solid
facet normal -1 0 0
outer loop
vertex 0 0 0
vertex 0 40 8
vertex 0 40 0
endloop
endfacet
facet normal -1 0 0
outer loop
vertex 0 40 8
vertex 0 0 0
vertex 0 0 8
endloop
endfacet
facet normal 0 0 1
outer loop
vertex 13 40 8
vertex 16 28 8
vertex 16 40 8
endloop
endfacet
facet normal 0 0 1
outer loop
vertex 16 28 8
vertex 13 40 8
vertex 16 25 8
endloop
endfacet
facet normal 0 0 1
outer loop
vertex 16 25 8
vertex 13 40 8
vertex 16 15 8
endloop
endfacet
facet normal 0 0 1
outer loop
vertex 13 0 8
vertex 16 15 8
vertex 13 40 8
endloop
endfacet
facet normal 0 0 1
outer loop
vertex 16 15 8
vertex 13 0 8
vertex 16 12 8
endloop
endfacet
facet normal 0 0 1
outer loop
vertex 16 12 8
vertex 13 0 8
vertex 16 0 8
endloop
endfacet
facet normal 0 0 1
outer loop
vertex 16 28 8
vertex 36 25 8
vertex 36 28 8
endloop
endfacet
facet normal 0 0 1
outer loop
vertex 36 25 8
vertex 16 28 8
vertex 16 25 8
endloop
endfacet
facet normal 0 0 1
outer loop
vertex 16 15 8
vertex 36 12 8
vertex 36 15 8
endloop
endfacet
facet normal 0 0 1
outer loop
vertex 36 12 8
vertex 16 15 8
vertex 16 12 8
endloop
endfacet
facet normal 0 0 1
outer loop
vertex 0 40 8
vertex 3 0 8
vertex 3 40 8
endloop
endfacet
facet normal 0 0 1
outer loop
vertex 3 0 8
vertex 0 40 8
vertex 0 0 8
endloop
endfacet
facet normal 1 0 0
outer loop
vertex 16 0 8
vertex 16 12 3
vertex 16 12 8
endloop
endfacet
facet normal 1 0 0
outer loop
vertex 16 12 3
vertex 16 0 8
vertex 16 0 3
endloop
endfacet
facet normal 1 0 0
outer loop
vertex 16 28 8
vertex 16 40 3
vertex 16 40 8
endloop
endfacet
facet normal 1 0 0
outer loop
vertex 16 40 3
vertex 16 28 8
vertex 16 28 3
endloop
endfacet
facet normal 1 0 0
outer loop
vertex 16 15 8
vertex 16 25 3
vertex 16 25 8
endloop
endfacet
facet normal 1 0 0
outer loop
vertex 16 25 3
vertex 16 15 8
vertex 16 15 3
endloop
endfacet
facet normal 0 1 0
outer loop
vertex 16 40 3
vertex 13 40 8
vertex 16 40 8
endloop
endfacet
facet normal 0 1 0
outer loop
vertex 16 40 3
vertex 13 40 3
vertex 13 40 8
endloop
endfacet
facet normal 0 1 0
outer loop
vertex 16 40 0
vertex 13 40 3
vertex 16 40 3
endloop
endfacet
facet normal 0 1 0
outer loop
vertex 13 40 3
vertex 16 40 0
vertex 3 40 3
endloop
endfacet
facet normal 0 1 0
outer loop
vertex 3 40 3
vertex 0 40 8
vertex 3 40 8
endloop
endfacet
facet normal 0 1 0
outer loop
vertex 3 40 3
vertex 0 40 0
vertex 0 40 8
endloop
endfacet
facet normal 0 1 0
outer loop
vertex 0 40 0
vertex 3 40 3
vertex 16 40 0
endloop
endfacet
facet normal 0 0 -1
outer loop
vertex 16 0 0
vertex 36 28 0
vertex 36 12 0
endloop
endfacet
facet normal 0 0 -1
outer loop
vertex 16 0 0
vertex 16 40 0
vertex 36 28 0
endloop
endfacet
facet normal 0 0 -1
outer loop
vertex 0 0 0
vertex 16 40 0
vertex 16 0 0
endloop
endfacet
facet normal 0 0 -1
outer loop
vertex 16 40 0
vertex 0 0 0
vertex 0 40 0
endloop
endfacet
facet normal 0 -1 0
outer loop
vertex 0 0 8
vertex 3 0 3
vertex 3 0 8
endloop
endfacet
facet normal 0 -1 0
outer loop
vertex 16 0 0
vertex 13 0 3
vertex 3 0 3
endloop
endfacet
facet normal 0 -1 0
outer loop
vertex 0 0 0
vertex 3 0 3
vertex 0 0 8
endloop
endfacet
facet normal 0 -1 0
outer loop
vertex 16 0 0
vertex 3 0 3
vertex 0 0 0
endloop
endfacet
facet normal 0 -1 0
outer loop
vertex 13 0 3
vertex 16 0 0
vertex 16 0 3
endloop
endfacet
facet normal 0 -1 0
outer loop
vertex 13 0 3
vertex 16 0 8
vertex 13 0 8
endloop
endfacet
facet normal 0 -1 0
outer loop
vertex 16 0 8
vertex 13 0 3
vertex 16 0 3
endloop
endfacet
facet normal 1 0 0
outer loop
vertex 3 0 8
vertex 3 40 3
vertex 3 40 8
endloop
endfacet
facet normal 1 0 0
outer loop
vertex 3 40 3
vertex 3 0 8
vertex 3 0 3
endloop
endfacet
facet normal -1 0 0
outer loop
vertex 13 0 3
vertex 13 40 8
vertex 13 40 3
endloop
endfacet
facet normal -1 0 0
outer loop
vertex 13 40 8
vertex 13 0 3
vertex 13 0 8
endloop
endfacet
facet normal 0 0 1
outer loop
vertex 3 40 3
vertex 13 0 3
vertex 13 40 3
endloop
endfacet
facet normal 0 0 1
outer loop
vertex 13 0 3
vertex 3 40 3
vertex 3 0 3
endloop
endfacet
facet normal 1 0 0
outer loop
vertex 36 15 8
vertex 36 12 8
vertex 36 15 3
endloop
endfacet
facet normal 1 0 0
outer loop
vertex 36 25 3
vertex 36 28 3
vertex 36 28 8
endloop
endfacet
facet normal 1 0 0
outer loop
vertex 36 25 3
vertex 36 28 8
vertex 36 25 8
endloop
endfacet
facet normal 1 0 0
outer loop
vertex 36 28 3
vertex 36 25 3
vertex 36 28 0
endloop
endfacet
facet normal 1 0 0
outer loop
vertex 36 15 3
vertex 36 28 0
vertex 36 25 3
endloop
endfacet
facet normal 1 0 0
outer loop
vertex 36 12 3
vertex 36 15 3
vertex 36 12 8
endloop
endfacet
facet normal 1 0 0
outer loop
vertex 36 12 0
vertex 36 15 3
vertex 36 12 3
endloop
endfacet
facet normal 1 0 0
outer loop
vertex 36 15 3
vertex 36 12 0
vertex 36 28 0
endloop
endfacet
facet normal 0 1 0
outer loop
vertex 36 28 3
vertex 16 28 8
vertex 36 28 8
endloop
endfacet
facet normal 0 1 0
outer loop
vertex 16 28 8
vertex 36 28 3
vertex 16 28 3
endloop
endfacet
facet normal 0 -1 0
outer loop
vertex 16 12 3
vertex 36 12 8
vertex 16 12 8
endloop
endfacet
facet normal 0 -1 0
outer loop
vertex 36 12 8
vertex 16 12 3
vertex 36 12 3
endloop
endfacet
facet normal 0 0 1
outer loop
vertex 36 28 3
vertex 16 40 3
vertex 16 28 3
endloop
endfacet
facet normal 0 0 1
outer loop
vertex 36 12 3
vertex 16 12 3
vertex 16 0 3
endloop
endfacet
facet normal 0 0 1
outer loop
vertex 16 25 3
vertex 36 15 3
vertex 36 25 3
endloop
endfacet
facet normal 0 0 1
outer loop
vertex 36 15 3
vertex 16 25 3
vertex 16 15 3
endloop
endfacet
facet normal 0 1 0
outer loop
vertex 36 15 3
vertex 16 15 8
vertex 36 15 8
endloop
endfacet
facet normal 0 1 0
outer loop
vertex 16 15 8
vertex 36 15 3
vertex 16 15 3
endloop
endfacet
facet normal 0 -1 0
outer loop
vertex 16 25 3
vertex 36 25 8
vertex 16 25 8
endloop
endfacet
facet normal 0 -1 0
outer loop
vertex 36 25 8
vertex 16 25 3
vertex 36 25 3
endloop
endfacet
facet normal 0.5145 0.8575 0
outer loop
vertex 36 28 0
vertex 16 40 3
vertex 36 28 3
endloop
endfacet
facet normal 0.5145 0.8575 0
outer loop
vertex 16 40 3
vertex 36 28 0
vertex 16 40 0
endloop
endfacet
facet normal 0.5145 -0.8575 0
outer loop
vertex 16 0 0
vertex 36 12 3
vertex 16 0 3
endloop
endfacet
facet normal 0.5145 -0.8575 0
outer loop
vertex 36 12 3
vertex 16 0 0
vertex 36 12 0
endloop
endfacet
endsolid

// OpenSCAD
ml = 40;
thick = 3;
d = 10;

difference() {
    cube([d + 2 * thick, ml, d/2 + thick]);
    translate([thick, -1, thick]) cube([d, ml + 2, d/2 + 1]);
}
translate([d + 2 * thick, ml/2 - d/2 - thick, 0]) difference() {
    cube([ml / 2, d + 2 * thick, d/2 + thick]);
    translate([-1, thick, thick]) cube([ml / 2 + 2, d, d/2 + 1]);
}
linear_extrude(height = thick)
    polygon(points = [
                [d + 2 * thick, 0], [d + 2 * thick + ml/2, ml/2 - d/2 - thick],
                [d + 2 * thick + ml/2, ml/2 + d/2 + thick],
                [d + 2 * thick, ml]],
        paths = [[0, 1, 2, 3]]);
